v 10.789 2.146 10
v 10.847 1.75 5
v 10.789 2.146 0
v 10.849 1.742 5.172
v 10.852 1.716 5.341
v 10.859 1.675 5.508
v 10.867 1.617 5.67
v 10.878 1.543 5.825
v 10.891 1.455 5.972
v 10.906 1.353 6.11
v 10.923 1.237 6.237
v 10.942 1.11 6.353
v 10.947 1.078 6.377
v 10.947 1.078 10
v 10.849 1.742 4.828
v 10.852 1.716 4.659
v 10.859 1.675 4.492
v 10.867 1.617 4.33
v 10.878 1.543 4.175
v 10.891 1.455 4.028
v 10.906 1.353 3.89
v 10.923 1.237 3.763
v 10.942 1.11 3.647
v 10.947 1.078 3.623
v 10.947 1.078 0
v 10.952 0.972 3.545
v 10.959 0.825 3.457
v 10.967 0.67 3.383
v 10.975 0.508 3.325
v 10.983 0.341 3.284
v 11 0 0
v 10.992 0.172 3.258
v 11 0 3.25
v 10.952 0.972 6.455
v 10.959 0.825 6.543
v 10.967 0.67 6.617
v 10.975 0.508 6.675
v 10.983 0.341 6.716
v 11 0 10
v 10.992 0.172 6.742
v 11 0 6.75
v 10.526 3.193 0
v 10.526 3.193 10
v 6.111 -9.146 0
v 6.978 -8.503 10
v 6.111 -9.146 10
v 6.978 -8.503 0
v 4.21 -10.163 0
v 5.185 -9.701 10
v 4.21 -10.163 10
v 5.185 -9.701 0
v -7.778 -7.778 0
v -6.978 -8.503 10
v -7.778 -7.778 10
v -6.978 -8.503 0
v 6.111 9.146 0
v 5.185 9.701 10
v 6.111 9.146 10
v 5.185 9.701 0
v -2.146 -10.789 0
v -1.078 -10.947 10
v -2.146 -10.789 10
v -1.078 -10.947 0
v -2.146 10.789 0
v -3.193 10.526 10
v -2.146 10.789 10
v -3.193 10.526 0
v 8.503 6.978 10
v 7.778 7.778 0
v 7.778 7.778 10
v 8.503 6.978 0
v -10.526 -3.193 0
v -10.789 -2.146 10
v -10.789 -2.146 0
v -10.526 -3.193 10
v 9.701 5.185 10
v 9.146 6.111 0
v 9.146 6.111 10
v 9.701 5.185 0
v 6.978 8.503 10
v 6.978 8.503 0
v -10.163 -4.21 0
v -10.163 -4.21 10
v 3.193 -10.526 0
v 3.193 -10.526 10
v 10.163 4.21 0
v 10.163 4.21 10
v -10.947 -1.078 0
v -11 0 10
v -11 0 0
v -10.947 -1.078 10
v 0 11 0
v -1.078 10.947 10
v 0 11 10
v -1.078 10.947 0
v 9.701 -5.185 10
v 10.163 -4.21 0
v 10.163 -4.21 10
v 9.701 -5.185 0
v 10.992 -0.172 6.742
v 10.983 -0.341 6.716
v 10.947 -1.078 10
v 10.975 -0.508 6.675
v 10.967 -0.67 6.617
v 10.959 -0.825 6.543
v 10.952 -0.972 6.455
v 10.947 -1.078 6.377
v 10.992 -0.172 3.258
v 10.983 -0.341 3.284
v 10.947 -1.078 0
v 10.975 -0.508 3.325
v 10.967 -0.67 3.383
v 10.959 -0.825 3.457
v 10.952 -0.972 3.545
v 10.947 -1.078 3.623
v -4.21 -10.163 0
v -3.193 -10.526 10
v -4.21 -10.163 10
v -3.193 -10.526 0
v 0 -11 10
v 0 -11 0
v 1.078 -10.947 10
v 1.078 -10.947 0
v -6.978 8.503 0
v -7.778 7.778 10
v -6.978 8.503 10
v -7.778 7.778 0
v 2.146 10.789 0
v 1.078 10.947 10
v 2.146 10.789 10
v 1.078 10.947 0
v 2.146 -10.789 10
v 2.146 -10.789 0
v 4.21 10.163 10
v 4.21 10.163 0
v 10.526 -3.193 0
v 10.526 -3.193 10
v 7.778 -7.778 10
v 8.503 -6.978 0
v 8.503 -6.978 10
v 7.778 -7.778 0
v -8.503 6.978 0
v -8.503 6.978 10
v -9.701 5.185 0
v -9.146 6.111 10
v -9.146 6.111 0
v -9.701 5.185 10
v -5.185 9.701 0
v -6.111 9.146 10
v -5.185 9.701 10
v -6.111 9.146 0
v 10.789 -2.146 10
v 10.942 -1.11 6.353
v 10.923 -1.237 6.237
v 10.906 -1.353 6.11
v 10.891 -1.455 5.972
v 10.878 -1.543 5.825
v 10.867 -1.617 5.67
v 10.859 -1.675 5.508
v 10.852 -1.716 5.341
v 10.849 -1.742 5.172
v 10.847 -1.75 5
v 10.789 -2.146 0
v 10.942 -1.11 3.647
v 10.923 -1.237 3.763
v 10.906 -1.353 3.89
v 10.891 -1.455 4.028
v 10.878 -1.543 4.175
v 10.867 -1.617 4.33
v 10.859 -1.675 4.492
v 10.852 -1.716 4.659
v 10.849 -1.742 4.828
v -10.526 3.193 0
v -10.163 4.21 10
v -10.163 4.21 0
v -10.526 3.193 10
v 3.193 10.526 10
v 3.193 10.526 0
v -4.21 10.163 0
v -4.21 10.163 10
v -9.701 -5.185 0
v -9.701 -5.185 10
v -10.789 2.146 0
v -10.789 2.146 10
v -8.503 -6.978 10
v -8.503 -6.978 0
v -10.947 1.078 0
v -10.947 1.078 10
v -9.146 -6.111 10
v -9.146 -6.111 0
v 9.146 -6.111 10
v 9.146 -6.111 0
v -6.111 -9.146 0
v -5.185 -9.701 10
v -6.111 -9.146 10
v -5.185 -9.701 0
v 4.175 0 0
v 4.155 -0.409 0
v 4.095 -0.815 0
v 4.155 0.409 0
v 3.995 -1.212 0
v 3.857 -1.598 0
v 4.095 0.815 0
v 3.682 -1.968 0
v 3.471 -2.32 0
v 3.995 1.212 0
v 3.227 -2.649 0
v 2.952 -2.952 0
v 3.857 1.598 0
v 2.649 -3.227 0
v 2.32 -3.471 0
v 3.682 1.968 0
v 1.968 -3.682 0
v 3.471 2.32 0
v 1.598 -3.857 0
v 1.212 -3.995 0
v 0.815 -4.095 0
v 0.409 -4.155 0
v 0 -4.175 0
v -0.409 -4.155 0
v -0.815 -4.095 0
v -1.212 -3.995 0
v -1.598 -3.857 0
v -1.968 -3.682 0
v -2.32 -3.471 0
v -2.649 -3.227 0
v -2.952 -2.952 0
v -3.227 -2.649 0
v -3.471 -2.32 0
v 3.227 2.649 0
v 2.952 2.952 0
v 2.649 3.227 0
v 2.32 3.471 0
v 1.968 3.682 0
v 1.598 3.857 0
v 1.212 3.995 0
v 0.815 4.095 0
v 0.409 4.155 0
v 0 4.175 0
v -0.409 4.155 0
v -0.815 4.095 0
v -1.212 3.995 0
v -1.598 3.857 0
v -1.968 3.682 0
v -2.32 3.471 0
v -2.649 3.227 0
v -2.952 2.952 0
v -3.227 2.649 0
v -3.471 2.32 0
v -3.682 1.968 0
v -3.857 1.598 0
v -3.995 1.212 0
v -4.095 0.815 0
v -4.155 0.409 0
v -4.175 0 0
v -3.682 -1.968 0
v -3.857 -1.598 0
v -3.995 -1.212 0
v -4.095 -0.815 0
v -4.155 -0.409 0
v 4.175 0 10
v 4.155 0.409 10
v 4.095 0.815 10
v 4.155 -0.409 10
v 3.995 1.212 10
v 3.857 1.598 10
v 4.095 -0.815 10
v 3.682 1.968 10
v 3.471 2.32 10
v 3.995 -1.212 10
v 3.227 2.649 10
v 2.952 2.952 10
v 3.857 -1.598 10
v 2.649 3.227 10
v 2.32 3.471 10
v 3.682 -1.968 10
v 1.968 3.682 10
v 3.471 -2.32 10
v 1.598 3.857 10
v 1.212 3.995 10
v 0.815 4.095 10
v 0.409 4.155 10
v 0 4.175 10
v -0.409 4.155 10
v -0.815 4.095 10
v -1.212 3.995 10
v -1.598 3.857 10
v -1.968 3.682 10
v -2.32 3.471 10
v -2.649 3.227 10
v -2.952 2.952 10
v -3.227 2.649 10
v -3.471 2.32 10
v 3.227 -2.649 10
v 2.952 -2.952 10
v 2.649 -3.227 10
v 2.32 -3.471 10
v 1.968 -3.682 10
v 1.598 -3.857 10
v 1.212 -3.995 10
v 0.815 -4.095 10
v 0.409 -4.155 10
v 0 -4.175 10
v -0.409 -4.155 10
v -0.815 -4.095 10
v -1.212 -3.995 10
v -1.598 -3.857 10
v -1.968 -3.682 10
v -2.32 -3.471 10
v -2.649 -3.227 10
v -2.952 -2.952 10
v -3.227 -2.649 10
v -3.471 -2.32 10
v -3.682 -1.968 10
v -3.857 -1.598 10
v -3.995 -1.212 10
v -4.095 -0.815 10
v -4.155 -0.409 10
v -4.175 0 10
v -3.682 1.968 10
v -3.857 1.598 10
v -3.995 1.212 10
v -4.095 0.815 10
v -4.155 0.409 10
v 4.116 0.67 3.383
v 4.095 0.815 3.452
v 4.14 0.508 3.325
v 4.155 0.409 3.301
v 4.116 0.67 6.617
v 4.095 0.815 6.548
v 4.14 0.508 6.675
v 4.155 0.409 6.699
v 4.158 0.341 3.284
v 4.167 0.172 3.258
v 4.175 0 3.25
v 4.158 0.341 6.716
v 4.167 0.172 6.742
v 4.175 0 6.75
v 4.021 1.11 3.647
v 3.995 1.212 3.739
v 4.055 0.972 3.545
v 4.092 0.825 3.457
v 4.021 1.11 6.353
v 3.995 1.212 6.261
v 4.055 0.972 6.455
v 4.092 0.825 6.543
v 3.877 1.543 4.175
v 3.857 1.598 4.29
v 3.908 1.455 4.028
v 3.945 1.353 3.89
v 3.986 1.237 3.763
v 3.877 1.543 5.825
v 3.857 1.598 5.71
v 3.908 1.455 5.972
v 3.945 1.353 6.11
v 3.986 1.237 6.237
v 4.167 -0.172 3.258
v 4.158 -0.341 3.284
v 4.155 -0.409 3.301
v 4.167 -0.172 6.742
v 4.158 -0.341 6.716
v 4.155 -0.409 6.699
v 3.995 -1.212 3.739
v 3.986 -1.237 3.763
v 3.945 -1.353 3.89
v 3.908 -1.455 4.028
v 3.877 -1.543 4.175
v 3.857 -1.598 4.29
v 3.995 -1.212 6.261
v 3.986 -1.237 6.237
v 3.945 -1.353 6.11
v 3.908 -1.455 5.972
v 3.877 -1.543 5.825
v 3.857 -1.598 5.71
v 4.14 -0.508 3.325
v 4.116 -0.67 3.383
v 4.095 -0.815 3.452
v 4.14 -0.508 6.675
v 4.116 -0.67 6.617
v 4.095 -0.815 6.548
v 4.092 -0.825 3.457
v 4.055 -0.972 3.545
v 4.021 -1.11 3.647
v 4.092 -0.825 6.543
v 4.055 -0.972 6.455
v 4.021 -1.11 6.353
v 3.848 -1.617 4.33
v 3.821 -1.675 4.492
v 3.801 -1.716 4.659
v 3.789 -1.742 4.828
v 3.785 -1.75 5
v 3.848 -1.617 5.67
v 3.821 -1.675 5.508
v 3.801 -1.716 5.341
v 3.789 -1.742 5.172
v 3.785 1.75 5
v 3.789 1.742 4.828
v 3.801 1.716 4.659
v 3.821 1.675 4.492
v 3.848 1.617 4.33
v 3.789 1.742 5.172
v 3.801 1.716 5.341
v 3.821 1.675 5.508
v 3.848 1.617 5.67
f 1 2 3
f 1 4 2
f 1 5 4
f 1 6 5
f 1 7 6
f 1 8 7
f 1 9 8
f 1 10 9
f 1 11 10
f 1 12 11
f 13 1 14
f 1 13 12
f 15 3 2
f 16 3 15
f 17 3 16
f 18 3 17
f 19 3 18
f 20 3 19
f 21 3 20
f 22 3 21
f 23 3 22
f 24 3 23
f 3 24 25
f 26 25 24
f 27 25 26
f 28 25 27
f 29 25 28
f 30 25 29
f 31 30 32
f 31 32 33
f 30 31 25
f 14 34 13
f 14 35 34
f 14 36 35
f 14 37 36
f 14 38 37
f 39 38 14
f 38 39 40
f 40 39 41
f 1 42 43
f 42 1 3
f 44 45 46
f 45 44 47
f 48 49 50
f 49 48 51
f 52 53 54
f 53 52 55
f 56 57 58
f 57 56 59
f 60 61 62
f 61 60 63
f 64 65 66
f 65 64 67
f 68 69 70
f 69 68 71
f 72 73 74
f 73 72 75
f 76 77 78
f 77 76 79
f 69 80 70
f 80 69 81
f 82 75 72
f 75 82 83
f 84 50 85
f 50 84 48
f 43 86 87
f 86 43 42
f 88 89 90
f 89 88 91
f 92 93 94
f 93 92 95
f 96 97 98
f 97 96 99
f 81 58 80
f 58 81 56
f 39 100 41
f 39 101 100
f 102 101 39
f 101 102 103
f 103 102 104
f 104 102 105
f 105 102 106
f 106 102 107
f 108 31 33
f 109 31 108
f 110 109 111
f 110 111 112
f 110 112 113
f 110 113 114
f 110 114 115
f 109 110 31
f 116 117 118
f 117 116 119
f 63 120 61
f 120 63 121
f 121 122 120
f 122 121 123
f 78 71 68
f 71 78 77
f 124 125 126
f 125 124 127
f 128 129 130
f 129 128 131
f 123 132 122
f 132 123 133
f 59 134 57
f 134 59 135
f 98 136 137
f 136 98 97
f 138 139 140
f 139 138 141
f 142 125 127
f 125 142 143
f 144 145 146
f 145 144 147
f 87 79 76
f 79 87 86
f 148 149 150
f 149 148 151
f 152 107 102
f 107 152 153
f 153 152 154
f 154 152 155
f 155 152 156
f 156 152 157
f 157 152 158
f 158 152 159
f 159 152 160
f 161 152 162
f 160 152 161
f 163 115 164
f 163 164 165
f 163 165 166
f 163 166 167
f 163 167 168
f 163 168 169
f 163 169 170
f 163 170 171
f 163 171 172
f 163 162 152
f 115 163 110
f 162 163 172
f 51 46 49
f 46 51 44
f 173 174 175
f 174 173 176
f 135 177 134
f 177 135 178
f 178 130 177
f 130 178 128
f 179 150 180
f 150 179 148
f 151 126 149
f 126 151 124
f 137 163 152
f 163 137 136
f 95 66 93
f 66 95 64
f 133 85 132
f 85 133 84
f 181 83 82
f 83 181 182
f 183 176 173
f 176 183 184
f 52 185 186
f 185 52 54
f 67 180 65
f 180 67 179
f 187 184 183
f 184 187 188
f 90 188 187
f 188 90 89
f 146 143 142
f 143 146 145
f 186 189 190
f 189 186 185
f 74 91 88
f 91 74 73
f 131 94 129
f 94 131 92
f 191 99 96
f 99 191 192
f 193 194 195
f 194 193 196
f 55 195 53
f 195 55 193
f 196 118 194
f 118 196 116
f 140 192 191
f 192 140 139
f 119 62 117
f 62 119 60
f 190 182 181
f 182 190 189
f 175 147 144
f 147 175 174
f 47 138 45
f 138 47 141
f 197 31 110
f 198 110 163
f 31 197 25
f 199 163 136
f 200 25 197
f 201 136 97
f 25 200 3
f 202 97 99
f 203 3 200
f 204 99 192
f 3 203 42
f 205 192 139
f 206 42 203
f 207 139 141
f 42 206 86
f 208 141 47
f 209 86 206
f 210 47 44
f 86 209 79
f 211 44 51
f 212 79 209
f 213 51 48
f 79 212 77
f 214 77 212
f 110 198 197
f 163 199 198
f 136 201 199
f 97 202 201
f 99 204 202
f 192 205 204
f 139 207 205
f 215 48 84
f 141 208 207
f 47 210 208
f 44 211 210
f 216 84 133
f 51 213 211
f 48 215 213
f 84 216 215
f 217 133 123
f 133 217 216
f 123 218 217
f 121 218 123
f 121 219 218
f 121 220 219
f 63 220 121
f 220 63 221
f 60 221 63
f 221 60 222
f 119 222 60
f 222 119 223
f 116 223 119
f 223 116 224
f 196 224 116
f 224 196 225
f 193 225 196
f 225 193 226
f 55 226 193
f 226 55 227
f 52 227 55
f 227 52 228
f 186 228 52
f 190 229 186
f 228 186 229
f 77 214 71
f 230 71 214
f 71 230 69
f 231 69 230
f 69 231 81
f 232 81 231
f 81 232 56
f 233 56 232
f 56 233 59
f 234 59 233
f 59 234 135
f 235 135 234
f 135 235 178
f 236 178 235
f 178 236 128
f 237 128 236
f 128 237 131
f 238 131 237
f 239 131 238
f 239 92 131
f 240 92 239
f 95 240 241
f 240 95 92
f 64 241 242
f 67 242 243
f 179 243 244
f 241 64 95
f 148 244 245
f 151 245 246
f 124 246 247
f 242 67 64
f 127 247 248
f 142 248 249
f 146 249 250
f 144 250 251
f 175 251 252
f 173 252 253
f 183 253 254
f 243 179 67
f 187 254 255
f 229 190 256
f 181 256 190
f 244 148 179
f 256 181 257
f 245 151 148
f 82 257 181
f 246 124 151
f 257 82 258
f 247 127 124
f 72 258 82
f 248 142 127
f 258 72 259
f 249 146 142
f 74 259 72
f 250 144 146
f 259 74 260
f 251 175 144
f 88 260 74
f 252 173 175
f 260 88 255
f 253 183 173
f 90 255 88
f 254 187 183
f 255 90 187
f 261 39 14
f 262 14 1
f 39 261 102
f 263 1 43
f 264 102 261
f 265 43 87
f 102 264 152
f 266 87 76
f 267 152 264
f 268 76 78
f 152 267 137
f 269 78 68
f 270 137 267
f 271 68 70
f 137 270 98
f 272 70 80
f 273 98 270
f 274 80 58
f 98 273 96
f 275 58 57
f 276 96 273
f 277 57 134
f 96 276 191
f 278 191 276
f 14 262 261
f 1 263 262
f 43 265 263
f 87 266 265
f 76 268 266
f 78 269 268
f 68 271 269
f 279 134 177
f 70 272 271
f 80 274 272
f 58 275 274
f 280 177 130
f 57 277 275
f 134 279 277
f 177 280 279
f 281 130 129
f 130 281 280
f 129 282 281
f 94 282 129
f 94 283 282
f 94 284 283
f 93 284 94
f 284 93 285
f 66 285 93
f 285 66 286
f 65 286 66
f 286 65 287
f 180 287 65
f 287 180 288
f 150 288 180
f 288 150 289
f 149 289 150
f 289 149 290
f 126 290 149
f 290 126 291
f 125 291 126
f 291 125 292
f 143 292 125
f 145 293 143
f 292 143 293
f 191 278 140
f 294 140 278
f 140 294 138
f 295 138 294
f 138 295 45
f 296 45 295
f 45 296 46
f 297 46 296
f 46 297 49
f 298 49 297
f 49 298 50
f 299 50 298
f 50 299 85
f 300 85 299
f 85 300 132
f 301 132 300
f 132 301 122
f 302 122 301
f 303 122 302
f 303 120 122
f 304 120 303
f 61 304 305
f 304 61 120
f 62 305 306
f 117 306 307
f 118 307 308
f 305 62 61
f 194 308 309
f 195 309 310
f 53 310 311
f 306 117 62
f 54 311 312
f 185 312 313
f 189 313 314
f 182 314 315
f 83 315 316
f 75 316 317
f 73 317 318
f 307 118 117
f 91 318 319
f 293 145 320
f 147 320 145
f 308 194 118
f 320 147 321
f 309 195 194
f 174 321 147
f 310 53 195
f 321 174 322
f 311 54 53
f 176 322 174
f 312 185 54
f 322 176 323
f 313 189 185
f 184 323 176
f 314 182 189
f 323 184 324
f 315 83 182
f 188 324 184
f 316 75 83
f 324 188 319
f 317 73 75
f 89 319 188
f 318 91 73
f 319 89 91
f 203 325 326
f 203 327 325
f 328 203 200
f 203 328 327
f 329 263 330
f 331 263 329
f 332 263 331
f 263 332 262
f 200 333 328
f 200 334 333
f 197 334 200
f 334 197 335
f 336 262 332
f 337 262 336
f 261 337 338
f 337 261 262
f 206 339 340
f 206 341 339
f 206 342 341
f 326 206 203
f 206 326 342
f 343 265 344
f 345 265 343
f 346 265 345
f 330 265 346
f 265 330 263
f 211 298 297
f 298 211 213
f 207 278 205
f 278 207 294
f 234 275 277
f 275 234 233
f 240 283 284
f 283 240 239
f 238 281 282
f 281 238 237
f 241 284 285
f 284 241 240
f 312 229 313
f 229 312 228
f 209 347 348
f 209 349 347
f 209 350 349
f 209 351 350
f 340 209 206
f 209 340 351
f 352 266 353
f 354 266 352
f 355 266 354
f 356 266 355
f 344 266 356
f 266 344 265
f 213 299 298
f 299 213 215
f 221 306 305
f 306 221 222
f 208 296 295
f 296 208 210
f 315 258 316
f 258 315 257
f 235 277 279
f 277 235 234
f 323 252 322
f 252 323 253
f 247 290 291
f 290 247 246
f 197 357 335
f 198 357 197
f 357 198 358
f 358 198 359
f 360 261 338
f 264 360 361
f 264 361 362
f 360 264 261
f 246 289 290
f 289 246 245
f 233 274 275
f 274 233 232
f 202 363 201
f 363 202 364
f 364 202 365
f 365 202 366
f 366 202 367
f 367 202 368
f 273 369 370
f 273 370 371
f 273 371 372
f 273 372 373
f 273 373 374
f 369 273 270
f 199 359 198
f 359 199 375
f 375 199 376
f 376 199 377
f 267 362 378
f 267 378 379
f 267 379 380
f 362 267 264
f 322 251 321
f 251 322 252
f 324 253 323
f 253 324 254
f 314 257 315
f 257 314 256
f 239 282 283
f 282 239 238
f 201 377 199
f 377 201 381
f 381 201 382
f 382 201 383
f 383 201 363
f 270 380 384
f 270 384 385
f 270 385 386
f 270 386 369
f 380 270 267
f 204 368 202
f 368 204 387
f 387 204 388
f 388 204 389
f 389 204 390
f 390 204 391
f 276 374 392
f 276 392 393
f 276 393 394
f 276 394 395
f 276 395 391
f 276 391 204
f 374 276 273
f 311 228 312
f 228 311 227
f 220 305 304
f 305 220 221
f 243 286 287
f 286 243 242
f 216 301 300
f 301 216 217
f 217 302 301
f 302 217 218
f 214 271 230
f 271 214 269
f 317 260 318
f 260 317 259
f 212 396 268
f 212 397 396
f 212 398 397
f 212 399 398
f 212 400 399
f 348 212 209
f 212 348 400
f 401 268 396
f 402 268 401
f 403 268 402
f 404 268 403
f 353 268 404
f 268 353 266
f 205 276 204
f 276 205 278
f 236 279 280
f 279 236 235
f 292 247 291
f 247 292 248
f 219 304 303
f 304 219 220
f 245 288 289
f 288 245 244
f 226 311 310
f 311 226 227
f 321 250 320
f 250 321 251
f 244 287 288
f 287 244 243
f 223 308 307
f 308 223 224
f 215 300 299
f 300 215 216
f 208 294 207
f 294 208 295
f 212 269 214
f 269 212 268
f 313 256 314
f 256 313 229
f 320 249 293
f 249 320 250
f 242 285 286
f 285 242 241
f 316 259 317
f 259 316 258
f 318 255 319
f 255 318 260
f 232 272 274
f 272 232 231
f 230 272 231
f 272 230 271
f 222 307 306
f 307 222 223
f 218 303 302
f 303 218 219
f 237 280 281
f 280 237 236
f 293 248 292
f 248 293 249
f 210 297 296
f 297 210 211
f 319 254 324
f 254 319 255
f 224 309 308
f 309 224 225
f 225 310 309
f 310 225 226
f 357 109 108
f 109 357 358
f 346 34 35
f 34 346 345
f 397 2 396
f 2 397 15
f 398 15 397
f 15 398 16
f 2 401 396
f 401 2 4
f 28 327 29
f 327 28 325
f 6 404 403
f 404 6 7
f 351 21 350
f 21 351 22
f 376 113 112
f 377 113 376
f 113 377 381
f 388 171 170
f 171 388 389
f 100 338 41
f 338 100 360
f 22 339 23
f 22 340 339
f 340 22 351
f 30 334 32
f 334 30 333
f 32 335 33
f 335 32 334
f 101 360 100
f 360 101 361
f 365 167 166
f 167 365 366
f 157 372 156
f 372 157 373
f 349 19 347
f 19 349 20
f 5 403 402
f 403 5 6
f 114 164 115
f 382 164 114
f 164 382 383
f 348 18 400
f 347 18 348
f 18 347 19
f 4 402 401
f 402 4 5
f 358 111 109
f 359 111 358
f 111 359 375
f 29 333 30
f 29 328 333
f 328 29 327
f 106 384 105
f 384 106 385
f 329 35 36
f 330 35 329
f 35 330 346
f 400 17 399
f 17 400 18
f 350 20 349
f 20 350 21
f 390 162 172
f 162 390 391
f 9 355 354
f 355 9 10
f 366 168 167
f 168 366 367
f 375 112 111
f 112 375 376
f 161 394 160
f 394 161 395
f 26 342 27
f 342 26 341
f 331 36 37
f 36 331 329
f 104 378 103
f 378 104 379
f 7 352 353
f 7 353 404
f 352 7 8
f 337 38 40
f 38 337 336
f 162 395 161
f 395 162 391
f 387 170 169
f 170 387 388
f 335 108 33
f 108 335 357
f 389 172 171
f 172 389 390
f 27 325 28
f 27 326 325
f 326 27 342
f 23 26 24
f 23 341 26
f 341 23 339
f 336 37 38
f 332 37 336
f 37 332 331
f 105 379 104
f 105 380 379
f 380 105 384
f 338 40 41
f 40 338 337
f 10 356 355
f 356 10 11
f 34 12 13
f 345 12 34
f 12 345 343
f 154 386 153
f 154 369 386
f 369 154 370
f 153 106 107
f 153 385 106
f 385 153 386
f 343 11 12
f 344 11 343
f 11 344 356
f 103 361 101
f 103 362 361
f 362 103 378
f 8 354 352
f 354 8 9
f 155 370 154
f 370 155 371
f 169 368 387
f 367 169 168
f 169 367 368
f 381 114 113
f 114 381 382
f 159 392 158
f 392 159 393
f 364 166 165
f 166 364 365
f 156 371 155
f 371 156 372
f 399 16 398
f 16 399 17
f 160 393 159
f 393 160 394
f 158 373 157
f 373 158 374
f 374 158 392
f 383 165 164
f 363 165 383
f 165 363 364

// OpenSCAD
// file: parameters.scad
// =============================================================================
// Gen-AR Stacked dual-stator mid-rotor copper-max hyper - WOUND-AWARE (HARD GATE)
// ONE mid dual-face Halbach rotor | TWO wound pancake stators | 18 coils x175 t
// =============================================================================

wire_awg            = 26;
wire_od             = 0.45;
turns               = 175;      // +10 vs Gen-AO 165; 18x175x~0.117 ~ 368 m
fill                = 0.70;
layers_per_face     = 2;
wind_build_axial    = layers_per_face * wire_od * fill;   // 0.63
wind_build_radial   = 3 * wire_od * fill;                 // 0.945

coil_id_r           = 17.5;
coil_od_r           = 61.5;
span_deg            = 34.0;     // 9 stations x 40 deg
former_web          = 1.25;     // thinner vs AO 1.30
flange_t            = 0.60;
wall                = 1.2;
slot_w              = 2.4;
mount_hole          = 3.5;
tab_len             = 7.0;

former_bare_h       = former_web + 2 * flange_t;            // 2.45
coil_envelope_h     = former_bare_h + 2 * wind_build_axial; // 3.71

run_clear           = 0.50;
gap_spacer_h        = run_clear + wind_build_axial;         // 1.13
m2m                 = coil_envelope_h + 2 * run_clear;      // 4.71 per gap

coil_stations       = 9;        // per stator; x2 = 18 total
bay_r_in            = coil_id_r - 2.0 - wind_build_radial;
bay_r_out           = coil_od_r + 2.0 + wind_build_radial;
bay_span            = span_deg + 4.0;
bay_offset          = 2.0;
bay_depth           = former_bare_h + wind_build_axial;     // wound sits in bay
stator_back_web     = 2.0;
stator_thick        = bay_depth + stator_back_web;
stator_od           = 156.0;
shaft_clear_stator  = 38.0;
coil_mount_r        = 27.0;

large_pocket_d      = 20.3;
small_pocket_d      = 5.3;
pocket_h            = 5.2;
large_n             = 8;
R_large             = 39.5;     // tighter copper overlap vs AO R=40
R_small_inner       = 26.0;
R_small_mid         = 39.5;
R_small_outer       = 56.0;
carrier_od          = 154.0;
mid_carrier_thick   = 12.0;
hub_h               = 10.0;
hub_od              = 30.0;
rotor_b_offset_deg  = 22.5;

shaft_bore          = 8.35;
bearing_d           = 21.85;
bearing_h           = 7.2;
m3_clear            = 3.5;
bolt_r_inner        = 36.0;
bolt_n_inner        = 6;
flange_bolt_r       = 72.0;
flange_bolt_n       = 6;
brace_r             = 68.0;
brace_d             = 4.3;
brace_n             = 4;

spacer_pad_od       = 14.0;
spacer_pad_id       = m3_clear;
endbell_od          = 156.0;
endbell_thick       = 8.0;
endbell_shaft_clear = 10.0;

$fn = 64;
// main file
// Gen-AR shaft collar — print ×2–4
include <parameters.scad>;
$fn = 64;
od = 22; id = shaft_bore; h = 10; set_d = 3.5;
difference() {
    cylinder(d=od, h=h);
    translate([0, 0, -0.1]) cylinder(d=id, h=h + 0.2);
    translate([0, 0, h/2]) rotate([0, 90, 0]) cylinder(d=set_d, h=od);
}
